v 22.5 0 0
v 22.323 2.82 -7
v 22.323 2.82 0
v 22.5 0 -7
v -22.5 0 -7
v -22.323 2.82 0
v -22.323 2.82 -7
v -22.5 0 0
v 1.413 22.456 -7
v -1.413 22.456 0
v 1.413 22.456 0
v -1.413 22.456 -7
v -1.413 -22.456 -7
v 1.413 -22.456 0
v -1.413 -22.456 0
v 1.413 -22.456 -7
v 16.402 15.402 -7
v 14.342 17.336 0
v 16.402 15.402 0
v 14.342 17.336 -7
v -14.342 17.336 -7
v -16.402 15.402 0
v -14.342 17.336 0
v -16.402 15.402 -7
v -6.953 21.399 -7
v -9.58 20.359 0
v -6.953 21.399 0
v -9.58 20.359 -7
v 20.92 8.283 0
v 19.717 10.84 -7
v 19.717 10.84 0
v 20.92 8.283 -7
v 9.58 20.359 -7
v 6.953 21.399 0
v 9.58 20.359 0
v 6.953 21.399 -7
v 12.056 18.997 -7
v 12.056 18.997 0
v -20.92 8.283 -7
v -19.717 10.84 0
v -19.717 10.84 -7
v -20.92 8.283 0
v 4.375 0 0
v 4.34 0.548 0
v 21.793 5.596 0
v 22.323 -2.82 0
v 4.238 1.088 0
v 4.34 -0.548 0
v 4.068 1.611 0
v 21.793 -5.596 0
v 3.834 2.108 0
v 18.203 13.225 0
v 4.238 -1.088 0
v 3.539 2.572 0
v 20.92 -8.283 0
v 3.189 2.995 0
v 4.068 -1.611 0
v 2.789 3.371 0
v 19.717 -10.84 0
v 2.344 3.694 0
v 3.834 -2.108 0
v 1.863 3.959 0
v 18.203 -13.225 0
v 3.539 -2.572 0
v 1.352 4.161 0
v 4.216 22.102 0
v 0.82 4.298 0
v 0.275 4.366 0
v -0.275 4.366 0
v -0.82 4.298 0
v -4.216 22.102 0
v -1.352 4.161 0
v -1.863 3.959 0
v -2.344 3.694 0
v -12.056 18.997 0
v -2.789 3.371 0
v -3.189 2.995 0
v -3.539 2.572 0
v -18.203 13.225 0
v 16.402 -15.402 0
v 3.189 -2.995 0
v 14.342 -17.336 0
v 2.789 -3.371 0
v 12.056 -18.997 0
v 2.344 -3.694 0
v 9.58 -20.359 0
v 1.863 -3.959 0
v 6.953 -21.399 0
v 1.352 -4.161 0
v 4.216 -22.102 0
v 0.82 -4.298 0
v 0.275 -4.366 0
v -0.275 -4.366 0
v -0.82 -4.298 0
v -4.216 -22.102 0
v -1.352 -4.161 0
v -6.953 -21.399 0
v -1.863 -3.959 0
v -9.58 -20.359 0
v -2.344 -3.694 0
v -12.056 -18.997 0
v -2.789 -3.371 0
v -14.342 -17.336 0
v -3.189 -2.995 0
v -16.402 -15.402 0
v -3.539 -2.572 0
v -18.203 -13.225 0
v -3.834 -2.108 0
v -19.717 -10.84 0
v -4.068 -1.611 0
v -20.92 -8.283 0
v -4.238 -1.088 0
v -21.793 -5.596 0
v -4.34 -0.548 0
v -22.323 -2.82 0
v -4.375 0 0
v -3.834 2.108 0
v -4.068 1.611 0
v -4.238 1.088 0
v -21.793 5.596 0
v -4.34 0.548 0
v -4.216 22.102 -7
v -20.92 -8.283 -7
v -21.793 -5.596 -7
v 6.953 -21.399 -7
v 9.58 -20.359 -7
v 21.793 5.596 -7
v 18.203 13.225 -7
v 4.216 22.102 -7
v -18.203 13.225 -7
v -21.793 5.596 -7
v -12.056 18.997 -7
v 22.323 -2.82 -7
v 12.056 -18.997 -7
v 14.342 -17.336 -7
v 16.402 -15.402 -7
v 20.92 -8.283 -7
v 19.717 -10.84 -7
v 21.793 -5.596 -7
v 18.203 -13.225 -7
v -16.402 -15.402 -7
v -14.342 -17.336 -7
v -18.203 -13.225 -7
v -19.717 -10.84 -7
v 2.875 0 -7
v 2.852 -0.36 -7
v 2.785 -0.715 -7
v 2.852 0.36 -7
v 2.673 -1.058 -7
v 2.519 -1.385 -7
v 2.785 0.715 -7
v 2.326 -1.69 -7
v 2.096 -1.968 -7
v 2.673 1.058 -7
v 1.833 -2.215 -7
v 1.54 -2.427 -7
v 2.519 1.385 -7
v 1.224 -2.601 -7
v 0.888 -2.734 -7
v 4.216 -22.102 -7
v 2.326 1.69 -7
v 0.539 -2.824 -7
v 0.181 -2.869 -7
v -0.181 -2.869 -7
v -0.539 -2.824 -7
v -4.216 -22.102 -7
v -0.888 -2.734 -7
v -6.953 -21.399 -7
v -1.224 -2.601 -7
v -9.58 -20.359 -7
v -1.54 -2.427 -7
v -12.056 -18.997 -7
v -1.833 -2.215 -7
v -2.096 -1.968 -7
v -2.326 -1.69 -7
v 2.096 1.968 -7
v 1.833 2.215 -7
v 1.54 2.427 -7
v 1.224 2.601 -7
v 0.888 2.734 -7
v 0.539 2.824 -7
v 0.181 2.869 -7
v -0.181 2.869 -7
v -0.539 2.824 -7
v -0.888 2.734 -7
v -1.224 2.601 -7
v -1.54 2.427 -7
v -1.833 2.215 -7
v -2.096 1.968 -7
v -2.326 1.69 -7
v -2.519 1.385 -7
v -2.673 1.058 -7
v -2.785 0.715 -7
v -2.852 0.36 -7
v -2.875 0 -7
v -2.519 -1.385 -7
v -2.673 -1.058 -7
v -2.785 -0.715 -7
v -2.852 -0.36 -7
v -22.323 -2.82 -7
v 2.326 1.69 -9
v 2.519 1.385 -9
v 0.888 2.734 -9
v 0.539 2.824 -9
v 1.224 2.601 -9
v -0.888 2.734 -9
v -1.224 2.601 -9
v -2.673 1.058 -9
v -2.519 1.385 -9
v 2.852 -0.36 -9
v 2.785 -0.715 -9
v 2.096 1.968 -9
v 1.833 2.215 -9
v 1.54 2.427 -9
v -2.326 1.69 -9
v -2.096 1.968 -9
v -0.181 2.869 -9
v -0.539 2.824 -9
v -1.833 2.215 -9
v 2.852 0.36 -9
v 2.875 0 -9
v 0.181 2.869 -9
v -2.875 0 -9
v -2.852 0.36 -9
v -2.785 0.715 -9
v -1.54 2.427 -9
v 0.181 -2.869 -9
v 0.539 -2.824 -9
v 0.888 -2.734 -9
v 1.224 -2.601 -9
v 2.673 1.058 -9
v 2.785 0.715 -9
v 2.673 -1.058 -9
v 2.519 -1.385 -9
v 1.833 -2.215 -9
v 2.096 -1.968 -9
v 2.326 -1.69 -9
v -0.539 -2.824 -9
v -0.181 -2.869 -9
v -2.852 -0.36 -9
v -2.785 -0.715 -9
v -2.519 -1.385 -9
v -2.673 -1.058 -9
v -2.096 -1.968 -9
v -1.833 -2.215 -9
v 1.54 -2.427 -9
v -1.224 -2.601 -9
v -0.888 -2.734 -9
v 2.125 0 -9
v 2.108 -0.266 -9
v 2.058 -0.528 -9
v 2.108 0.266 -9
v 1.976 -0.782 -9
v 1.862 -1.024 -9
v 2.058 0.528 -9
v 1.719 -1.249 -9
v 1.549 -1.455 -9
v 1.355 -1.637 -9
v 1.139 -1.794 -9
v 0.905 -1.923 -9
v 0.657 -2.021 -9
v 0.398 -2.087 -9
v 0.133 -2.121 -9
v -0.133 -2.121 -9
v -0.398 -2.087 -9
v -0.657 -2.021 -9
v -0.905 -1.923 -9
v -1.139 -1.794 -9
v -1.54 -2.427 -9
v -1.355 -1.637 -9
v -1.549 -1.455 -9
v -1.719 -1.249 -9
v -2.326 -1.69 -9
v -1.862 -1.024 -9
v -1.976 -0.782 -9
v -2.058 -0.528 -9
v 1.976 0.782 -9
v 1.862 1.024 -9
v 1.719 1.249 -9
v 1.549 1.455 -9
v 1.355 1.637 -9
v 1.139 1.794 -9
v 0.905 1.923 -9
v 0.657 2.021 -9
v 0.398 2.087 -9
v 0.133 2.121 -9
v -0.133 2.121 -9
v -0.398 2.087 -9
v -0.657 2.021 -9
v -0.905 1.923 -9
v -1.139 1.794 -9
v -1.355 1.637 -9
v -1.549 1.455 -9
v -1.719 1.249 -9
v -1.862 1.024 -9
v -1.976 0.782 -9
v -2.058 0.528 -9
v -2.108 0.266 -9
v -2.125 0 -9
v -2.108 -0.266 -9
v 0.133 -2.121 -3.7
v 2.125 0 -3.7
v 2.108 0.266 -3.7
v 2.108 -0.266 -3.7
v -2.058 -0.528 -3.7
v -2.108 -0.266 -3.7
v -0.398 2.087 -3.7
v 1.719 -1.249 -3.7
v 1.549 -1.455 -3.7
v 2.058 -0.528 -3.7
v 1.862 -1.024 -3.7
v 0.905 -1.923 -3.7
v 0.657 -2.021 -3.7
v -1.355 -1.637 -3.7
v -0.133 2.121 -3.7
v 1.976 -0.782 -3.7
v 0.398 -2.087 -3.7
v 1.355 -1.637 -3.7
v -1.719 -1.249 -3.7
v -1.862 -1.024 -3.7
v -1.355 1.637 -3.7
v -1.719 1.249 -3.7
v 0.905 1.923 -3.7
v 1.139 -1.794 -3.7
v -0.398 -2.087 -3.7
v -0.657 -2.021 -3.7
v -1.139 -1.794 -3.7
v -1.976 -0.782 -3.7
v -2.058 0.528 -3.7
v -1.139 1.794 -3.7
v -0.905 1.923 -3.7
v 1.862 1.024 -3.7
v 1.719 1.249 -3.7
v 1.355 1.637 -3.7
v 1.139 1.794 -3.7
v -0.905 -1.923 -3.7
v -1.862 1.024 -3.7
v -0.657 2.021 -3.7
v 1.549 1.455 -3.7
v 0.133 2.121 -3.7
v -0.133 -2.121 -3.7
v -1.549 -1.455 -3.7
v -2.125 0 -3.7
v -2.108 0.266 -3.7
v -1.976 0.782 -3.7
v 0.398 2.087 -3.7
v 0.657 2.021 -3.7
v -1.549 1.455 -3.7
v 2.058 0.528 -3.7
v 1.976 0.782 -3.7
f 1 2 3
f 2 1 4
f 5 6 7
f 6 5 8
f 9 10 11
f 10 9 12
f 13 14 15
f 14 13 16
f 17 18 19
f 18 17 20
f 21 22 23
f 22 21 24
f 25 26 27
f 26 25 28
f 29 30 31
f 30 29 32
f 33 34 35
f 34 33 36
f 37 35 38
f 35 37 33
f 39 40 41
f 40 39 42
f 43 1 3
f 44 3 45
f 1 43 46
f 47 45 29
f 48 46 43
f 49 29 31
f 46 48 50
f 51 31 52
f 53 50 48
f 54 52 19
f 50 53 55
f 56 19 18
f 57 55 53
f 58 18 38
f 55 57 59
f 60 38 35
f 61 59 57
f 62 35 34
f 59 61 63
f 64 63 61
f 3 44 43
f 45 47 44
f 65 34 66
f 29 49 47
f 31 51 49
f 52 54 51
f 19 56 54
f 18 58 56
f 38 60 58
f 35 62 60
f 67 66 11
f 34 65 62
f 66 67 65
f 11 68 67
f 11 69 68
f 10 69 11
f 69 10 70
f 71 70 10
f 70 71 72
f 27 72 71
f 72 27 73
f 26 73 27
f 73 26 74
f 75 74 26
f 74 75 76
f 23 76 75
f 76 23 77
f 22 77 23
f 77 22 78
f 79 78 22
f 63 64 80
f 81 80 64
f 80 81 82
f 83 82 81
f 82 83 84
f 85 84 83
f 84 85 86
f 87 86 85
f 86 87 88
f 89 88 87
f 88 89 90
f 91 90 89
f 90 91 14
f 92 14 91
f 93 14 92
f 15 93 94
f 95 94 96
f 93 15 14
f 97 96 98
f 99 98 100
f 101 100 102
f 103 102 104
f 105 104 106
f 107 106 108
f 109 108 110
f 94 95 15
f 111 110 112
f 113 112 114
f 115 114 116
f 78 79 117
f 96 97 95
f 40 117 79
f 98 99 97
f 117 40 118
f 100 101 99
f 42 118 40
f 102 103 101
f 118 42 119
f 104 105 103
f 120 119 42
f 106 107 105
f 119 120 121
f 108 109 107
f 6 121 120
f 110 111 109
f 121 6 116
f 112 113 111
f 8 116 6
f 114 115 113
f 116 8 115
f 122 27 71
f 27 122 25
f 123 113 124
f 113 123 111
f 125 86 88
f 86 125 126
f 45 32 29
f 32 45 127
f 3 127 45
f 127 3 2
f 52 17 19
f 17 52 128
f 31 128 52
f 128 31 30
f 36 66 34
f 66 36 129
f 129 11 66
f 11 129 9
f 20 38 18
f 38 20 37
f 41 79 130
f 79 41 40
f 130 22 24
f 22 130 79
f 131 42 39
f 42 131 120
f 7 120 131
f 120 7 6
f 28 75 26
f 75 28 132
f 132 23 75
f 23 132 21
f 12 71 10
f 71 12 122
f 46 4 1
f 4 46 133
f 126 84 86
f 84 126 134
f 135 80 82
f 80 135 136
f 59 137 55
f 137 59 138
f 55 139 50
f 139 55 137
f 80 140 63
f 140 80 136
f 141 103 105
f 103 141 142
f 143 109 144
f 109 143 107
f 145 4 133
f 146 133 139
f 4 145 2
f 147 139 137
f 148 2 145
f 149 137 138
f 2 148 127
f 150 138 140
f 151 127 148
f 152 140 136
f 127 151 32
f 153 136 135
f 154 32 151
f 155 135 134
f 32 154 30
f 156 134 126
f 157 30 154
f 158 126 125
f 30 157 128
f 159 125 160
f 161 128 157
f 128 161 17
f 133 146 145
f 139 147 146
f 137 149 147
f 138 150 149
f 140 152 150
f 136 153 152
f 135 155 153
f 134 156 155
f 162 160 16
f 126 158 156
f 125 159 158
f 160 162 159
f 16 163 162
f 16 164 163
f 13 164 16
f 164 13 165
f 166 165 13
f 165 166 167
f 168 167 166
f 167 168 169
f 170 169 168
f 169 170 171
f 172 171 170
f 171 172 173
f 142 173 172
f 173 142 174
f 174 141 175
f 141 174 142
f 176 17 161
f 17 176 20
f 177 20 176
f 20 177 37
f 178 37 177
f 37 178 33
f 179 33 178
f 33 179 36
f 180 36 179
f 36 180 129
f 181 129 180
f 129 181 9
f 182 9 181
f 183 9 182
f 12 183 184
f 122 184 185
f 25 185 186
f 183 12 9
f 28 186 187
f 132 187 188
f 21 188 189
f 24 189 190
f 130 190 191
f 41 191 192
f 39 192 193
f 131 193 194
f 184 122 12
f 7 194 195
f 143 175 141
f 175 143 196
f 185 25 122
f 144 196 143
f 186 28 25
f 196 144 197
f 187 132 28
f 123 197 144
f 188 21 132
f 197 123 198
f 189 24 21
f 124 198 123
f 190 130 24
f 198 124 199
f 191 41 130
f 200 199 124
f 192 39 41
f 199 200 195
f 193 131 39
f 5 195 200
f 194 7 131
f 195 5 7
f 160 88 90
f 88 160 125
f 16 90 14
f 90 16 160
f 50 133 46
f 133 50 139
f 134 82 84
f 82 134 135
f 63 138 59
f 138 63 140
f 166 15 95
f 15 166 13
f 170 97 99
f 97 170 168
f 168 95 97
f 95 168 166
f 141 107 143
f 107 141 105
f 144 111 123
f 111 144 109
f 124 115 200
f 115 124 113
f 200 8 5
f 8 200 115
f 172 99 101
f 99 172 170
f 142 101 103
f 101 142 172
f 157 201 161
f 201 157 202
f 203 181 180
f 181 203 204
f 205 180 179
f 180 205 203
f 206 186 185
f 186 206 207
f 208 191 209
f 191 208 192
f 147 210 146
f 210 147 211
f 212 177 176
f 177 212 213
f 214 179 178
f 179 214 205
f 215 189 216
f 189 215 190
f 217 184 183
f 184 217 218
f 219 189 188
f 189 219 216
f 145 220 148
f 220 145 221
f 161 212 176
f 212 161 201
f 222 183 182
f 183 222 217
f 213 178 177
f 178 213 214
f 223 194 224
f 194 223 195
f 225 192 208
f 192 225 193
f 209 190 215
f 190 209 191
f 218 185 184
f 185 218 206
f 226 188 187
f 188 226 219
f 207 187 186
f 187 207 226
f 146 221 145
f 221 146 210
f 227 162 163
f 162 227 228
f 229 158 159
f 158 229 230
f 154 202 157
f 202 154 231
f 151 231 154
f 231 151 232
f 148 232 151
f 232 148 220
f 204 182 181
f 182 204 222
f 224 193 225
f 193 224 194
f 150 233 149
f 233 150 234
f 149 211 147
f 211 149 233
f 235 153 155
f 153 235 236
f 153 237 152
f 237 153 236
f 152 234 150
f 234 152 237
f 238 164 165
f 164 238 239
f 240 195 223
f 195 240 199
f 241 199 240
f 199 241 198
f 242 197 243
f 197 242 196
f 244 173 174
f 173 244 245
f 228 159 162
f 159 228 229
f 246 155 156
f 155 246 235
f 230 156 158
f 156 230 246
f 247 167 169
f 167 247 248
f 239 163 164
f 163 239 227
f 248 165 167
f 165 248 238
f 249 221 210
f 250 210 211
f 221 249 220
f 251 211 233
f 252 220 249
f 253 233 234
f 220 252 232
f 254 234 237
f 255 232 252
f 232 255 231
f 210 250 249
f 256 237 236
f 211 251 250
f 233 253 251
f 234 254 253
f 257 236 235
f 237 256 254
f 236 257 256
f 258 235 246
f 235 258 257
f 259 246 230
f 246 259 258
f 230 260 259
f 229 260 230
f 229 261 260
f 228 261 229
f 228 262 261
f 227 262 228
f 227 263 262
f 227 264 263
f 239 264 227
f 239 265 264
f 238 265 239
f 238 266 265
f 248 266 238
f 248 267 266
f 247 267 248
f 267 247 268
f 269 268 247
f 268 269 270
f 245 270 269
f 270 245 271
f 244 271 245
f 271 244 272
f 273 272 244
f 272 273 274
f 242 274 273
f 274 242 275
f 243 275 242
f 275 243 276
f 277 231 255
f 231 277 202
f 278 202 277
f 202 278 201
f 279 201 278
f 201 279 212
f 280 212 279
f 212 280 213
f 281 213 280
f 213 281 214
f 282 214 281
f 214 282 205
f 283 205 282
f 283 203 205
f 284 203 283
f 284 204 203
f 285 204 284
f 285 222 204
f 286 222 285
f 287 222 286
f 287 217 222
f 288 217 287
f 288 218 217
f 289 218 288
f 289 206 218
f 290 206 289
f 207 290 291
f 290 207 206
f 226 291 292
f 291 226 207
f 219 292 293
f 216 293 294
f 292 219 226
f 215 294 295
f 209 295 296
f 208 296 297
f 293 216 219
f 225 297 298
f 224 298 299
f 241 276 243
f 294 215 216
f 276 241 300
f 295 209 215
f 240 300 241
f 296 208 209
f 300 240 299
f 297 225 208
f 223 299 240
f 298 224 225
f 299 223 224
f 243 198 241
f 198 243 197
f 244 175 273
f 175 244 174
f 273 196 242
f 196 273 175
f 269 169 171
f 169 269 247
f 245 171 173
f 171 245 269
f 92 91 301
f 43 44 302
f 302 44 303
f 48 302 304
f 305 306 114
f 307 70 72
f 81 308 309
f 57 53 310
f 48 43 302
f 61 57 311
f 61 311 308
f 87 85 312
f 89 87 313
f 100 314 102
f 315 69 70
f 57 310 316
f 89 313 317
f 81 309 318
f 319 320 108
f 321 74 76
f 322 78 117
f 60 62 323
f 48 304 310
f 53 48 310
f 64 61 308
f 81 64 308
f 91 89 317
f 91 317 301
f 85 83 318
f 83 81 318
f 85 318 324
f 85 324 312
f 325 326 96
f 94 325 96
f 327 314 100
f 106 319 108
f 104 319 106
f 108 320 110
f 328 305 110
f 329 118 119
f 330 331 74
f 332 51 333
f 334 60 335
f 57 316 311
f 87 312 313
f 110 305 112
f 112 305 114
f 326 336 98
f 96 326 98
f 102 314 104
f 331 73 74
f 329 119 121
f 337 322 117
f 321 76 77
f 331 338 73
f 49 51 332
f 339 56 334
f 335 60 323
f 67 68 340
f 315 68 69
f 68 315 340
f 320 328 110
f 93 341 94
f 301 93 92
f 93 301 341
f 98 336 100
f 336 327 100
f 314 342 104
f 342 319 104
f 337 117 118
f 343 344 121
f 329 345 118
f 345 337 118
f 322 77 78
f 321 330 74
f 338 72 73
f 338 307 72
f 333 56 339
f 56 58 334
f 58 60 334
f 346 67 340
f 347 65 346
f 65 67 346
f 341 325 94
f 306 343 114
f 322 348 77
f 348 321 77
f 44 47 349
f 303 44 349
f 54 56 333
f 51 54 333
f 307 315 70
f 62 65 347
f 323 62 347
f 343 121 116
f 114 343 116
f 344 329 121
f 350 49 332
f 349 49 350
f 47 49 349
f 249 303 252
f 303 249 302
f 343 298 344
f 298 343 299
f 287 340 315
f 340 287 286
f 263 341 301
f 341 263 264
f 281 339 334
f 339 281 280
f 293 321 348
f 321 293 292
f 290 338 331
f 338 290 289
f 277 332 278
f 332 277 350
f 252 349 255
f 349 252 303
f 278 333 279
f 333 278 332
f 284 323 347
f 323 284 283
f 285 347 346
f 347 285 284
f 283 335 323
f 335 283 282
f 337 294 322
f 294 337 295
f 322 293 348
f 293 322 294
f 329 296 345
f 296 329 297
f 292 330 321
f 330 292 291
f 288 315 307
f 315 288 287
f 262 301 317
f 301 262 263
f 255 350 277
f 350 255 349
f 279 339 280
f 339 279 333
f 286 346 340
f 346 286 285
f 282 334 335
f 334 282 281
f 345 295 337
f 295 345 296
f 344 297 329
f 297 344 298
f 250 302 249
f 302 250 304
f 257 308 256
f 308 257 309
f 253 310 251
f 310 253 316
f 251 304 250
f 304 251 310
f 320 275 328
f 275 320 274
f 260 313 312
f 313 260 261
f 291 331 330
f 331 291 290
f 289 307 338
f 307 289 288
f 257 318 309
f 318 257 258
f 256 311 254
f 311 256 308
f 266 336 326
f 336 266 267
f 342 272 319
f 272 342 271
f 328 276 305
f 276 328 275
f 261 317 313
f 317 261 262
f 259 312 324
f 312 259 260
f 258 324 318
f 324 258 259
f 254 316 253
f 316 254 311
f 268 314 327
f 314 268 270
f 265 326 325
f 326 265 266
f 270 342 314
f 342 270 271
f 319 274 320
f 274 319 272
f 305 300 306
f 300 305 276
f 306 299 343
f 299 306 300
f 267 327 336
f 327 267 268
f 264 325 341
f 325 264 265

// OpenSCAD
$fn = 50;


difference() {
	union() {
		translate(v = [0, 0, -7.0000000000]) {
			cylinder(h = 7, r = 22.5000000000);
		}
		translate(v = [0, 0, -9.0000000000]) {
			cylinder(h = 9, r = 2.8750000000);
		}
	}
	union() {
		translate(v = [0, 0, 0]) {
			rotate(a = [0, 0, 0]) {
				difference() {
					union() {
						#translate(v = [0, 0, -9.0000000000]) {
							cylinder(h = 9, r = 2.0000000000);
						}
						#translate(v = [0, 0, -3.7000000000]) {
							cylinder(h = 3.7000000000, r1 = 2.1250000000, r2 = 4.3750000000);
						}
						#translate(v = [0, 0, -9.0000000000]) {
							cylinder(h = 9, r = 2.1250000000);
						}
						#translate(v = [0, 0, -9.0000000000]) {
							cylinder(h = 9, r = 2.0000000000);
						}
					}
					union();
				}
			}
		}
	}
}
